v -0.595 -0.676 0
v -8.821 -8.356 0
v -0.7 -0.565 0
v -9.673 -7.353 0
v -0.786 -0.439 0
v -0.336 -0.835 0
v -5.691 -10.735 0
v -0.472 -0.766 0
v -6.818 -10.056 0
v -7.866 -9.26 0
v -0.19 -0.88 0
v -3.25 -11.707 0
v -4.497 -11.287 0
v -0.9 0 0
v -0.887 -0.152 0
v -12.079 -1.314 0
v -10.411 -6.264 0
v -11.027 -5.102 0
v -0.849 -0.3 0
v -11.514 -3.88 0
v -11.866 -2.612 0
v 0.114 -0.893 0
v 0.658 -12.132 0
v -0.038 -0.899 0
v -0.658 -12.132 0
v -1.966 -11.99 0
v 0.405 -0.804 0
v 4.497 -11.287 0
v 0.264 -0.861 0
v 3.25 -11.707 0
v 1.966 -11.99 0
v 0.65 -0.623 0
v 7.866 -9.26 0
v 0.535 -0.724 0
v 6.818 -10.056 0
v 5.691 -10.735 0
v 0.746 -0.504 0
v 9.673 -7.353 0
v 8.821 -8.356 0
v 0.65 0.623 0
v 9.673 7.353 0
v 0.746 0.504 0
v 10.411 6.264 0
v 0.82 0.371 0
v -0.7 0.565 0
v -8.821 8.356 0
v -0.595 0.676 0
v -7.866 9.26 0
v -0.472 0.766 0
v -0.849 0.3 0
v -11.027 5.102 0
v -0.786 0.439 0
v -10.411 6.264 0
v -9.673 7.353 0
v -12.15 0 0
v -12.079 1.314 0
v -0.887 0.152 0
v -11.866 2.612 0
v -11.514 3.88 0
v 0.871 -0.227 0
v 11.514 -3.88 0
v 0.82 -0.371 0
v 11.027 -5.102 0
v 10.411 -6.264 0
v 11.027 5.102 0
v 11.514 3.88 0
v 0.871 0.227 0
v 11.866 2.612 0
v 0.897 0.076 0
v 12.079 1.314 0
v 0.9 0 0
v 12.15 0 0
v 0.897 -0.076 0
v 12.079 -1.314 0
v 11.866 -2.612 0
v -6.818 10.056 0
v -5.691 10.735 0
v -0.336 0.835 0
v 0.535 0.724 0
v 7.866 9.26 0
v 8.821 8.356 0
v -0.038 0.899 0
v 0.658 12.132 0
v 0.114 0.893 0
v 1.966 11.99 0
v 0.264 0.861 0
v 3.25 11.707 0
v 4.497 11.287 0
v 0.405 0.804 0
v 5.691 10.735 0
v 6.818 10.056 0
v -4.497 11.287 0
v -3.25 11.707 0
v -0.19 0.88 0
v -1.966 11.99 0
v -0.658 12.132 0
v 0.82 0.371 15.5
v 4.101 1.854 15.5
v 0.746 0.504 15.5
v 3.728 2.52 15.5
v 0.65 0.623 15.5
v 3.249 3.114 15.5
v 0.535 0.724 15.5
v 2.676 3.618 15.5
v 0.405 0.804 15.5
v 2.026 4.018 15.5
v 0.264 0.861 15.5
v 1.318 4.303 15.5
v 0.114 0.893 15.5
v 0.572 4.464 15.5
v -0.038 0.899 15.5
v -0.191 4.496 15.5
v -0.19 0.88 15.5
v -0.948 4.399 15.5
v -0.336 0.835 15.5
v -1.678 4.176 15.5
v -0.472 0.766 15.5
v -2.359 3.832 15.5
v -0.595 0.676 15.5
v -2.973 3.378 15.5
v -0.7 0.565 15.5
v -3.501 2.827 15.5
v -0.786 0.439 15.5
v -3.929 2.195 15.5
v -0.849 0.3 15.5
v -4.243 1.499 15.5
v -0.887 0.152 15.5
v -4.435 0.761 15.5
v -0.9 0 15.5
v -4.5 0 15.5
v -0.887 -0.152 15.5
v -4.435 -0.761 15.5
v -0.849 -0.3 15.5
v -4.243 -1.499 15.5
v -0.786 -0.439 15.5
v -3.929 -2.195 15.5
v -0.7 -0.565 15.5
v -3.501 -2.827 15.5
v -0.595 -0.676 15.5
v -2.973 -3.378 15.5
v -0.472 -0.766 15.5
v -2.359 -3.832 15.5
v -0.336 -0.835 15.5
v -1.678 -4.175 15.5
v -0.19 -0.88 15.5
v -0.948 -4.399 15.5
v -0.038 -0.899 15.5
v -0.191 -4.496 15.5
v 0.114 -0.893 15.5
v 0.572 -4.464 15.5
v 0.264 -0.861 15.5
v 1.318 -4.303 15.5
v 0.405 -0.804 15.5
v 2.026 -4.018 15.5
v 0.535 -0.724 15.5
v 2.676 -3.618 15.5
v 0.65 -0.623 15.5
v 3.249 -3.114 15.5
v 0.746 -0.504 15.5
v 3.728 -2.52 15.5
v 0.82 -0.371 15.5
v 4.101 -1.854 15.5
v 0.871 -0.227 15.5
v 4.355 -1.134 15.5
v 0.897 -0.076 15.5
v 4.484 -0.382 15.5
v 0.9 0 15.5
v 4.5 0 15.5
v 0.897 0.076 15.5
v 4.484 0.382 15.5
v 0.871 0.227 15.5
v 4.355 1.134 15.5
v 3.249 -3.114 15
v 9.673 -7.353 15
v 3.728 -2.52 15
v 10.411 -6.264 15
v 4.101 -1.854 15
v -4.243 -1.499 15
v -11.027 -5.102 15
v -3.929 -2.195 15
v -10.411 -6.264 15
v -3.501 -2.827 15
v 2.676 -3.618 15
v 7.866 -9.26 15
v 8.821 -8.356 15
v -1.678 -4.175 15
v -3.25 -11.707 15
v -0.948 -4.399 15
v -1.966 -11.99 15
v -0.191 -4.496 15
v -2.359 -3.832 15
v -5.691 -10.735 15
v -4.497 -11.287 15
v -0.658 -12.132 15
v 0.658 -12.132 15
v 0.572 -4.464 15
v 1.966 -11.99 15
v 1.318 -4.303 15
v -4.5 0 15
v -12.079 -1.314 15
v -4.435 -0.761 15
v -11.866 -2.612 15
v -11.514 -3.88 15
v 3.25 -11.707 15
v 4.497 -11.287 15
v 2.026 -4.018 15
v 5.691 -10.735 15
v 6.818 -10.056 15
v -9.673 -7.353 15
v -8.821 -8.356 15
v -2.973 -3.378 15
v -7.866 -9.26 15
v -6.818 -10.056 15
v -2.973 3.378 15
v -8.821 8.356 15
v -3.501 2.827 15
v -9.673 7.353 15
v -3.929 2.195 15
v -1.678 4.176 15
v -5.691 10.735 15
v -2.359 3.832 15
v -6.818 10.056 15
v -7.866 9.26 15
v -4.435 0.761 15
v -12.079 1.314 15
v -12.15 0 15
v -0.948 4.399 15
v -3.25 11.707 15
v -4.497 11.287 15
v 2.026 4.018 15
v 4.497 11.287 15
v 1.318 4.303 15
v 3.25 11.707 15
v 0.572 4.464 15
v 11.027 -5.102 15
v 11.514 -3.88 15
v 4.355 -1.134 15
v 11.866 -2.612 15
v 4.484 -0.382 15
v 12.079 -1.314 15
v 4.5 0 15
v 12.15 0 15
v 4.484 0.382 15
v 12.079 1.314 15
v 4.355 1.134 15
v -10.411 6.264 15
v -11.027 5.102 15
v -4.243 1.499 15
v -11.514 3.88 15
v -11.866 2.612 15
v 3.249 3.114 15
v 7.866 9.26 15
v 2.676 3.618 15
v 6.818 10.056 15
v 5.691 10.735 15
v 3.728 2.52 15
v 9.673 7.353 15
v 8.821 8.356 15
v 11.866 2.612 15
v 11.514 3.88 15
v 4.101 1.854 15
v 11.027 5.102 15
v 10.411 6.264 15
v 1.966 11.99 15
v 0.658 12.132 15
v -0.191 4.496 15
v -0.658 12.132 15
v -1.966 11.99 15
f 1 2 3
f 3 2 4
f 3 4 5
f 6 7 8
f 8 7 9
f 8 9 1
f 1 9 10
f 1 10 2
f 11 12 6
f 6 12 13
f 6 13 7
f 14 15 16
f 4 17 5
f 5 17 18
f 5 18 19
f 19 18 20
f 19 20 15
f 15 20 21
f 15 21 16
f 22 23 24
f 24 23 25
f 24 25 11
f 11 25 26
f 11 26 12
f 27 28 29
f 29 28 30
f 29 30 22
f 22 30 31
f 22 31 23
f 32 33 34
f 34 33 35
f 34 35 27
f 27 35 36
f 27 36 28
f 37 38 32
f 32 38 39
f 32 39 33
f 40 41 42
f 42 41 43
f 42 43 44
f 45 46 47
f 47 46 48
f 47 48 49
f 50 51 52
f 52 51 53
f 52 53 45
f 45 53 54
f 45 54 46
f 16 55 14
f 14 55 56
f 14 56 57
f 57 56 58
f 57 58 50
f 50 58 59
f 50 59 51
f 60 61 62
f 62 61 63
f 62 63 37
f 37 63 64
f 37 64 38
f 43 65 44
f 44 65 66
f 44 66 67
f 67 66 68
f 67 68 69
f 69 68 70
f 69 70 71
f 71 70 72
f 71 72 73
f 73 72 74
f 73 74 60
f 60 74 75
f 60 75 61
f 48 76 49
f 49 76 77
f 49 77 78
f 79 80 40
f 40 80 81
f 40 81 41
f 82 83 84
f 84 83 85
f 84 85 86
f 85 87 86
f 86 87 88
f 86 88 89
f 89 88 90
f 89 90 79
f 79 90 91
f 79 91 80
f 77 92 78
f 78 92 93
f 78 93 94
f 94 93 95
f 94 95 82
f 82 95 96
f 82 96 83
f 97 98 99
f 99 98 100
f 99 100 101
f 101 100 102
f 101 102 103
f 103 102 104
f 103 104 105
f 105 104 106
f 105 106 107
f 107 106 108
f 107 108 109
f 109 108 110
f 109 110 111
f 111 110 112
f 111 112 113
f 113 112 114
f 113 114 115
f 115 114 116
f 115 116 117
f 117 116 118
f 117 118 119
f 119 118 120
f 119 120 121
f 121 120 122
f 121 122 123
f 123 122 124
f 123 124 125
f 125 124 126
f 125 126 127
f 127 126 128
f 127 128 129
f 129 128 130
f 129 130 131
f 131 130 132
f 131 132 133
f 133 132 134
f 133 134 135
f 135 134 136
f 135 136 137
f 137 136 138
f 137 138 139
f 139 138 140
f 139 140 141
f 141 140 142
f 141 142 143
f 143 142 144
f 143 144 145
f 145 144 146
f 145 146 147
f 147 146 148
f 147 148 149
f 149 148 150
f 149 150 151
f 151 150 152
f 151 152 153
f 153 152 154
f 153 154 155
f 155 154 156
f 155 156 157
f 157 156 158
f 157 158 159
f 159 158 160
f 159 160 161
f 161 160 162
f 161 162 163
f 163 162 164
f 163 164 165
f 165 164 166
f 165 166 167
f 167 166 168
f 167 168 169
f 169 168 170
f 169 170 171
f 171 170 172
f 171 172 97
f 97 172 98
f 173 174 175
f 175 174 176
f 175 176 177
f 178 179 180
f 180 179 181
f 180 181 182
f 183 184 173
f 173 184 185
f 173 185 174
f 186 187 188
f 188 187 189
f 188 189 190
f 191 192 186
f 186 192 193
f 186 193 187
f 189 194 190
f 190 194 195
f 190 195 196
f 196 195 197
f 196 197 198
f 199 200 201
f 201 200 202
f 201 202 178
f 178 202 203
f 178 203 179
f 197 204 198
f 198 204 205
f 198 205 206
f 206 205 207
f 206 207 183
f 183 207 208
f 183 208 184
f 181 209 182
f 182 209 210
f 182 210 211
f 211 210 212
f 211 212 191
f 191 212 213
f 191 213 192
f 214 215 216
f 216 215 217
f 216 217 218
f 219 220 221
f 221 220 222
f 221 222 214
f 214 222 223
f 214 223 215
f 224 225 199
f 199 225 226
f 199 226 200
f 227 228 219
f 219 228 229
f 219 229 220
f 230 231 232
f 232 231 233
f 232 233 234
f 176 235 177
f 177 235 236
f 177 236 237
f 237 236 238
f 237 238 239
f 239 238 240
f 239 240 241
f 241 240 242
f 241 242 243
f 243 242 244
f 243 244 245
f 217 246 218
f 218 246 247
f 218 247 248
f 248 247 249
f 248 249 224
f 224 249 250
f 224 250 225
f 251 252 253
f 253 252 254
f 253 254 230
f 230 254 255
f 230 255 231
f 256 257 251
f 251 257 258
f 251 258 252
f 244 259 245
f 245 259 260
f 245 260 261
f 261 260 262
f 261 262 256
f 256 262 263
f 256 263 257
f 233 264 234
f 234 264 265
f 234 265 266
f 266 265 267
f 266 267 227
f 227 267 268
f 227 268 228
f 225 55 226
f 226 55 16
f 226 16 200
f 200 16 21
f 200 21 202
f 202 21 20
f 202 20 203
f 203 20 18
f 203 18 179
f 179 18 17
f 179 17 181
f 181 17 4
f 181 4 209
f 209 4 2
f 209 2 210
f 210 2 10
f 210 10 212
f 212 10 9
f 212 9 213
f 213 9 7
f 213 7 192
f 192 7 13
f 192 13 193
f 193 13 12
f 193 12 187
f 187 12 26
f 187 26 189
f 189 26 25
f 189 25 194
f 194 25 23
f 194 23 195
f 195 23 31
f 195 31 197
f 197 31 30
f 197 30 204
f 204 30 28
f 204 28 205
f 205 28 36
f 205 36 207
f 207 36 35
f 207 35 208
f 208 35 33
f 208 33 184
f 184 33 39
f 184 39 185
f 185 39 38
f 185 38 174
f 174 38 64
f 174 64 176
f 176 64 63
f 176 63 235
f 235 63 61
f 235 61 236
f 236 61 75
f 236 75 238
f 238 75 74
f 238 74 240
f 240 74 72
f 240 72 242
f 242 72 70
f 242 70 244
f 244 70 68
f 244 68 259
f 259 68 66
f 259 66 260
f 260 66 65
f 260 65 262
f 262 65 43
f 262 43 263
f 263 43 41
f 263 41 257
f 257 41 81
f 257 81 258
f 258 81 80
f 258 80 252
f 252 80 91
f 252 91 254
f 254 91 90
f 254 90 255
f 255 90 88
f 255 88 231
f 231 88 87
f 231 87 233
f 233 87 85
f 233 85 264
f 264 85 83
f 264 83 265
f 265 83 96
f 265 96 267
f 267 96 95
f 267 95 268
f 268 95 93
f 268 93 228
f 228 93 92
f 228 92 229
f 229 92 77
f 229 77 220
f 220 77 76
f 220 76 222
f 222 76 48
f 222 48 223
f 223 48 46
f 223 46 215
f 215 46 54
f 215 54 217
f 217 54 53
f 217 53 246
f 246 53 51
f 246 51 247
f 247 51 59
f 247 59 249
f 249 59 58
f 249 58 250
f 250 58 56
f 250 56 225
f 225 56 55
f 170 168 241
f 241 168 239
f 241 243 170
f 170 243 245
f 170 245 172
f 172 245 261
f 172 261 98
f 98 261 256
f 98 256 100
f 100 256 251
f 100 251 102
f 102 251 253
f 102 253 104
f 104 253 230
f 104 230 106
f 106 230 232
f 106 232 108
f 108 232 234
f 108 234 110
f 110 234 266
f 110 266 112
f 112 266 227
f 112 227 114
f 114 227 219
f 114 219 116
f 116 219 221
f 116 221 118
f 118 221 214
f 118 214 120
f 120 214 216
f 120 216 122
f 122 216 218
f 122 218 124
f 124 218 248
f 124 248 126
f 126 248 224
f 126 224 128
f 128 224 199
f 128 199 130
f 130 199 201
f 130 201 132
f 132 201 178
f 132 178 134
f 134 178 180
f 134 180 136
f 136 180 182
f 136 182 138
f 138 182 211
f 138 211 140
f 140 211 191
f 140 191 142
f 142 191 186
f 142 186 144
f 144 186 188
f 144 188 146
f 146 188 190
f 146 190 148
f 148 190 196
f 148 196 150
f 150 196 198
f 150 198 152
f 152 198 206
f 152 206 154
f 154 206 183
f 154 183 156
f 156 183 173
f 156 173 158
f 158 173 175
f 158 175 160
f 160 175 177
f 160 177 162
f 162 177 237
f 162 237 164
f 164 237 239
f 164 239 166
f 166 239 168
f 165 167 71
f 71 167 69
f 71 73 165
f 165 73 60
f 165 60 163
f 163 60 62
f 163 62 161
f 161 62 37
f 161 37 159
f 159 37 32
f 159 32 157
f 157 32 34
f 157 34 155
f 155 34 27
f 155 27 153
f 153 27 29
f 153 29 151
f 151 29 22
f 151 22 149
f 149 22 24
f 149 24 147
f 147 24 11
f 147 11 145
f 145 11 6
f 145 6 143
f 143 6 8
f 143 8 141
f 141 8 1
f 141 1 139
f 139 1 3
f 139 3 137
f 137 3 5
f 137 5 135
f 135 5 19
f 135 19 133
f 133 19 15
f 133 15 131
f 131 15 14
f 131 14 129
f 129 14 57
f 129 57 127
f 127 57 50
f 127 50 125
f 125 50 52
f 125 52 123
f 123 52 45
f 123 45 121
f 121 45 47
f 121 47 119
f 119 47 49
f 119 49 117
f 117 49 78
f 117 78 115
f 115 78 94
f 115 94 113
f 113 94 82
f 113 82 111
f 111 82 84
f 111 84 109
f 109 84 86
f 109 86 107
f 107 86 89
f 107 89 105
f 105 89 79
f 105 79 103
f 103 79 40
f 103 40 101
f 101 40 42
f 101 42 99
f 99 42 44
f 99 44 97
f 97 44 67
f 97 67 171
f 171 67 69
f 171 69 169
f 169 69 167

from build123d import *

# Parameters (mm, degrees)
ESBO_O1_R                  = 12.15
RESSALTO_EXTRUS_O1_DEPTH   = 15
ESBO_O2_R                  = 4.5
RESSALTO_EXTRUS_O2_DEPTH   = 15.5
ESBO_O3_R                  = 0.9
CORTE_EXTRUS_O1_DEPTH      = 19.5
CORTE_EXTRUS_O1_DEPTH_BACK = 15.5


with BuildPart() as part:
    # Esboço1 → Ressalto-extrusão1 (new body)
    with BuildSketch(Plane.XY):
        Circle(ESBO_O1_R)
    extrude(amount=RESSALTO_EXTRUS_O1_DEPTH)

    # Esboço2 → Ressalto-extrusão2 (add)
    with BuildSketch(Plane.XY):
        Circle(ESBO_O2_R)
    extrude(amount=RESSALTO_EXTRUS_O2_DEPTH)

    # Esboço3 → Corte-extrusão1 (cut, two sides)
    with BuildSketch(Plane.XY) as corte_extrus_o1_sk:
        Circle(ESBO_O3_R)
    extrude(amount=CORTE_EXTRUS_O1_DEPTH, mode=Mode.SUBTRACT)
    extrude(corte_extrus_o1_sk.sketch, amount=-CORTE_EXTRUS_O1_DEPTH_BACK, mode=Mode.SUBTRACT)


solid = part.part
